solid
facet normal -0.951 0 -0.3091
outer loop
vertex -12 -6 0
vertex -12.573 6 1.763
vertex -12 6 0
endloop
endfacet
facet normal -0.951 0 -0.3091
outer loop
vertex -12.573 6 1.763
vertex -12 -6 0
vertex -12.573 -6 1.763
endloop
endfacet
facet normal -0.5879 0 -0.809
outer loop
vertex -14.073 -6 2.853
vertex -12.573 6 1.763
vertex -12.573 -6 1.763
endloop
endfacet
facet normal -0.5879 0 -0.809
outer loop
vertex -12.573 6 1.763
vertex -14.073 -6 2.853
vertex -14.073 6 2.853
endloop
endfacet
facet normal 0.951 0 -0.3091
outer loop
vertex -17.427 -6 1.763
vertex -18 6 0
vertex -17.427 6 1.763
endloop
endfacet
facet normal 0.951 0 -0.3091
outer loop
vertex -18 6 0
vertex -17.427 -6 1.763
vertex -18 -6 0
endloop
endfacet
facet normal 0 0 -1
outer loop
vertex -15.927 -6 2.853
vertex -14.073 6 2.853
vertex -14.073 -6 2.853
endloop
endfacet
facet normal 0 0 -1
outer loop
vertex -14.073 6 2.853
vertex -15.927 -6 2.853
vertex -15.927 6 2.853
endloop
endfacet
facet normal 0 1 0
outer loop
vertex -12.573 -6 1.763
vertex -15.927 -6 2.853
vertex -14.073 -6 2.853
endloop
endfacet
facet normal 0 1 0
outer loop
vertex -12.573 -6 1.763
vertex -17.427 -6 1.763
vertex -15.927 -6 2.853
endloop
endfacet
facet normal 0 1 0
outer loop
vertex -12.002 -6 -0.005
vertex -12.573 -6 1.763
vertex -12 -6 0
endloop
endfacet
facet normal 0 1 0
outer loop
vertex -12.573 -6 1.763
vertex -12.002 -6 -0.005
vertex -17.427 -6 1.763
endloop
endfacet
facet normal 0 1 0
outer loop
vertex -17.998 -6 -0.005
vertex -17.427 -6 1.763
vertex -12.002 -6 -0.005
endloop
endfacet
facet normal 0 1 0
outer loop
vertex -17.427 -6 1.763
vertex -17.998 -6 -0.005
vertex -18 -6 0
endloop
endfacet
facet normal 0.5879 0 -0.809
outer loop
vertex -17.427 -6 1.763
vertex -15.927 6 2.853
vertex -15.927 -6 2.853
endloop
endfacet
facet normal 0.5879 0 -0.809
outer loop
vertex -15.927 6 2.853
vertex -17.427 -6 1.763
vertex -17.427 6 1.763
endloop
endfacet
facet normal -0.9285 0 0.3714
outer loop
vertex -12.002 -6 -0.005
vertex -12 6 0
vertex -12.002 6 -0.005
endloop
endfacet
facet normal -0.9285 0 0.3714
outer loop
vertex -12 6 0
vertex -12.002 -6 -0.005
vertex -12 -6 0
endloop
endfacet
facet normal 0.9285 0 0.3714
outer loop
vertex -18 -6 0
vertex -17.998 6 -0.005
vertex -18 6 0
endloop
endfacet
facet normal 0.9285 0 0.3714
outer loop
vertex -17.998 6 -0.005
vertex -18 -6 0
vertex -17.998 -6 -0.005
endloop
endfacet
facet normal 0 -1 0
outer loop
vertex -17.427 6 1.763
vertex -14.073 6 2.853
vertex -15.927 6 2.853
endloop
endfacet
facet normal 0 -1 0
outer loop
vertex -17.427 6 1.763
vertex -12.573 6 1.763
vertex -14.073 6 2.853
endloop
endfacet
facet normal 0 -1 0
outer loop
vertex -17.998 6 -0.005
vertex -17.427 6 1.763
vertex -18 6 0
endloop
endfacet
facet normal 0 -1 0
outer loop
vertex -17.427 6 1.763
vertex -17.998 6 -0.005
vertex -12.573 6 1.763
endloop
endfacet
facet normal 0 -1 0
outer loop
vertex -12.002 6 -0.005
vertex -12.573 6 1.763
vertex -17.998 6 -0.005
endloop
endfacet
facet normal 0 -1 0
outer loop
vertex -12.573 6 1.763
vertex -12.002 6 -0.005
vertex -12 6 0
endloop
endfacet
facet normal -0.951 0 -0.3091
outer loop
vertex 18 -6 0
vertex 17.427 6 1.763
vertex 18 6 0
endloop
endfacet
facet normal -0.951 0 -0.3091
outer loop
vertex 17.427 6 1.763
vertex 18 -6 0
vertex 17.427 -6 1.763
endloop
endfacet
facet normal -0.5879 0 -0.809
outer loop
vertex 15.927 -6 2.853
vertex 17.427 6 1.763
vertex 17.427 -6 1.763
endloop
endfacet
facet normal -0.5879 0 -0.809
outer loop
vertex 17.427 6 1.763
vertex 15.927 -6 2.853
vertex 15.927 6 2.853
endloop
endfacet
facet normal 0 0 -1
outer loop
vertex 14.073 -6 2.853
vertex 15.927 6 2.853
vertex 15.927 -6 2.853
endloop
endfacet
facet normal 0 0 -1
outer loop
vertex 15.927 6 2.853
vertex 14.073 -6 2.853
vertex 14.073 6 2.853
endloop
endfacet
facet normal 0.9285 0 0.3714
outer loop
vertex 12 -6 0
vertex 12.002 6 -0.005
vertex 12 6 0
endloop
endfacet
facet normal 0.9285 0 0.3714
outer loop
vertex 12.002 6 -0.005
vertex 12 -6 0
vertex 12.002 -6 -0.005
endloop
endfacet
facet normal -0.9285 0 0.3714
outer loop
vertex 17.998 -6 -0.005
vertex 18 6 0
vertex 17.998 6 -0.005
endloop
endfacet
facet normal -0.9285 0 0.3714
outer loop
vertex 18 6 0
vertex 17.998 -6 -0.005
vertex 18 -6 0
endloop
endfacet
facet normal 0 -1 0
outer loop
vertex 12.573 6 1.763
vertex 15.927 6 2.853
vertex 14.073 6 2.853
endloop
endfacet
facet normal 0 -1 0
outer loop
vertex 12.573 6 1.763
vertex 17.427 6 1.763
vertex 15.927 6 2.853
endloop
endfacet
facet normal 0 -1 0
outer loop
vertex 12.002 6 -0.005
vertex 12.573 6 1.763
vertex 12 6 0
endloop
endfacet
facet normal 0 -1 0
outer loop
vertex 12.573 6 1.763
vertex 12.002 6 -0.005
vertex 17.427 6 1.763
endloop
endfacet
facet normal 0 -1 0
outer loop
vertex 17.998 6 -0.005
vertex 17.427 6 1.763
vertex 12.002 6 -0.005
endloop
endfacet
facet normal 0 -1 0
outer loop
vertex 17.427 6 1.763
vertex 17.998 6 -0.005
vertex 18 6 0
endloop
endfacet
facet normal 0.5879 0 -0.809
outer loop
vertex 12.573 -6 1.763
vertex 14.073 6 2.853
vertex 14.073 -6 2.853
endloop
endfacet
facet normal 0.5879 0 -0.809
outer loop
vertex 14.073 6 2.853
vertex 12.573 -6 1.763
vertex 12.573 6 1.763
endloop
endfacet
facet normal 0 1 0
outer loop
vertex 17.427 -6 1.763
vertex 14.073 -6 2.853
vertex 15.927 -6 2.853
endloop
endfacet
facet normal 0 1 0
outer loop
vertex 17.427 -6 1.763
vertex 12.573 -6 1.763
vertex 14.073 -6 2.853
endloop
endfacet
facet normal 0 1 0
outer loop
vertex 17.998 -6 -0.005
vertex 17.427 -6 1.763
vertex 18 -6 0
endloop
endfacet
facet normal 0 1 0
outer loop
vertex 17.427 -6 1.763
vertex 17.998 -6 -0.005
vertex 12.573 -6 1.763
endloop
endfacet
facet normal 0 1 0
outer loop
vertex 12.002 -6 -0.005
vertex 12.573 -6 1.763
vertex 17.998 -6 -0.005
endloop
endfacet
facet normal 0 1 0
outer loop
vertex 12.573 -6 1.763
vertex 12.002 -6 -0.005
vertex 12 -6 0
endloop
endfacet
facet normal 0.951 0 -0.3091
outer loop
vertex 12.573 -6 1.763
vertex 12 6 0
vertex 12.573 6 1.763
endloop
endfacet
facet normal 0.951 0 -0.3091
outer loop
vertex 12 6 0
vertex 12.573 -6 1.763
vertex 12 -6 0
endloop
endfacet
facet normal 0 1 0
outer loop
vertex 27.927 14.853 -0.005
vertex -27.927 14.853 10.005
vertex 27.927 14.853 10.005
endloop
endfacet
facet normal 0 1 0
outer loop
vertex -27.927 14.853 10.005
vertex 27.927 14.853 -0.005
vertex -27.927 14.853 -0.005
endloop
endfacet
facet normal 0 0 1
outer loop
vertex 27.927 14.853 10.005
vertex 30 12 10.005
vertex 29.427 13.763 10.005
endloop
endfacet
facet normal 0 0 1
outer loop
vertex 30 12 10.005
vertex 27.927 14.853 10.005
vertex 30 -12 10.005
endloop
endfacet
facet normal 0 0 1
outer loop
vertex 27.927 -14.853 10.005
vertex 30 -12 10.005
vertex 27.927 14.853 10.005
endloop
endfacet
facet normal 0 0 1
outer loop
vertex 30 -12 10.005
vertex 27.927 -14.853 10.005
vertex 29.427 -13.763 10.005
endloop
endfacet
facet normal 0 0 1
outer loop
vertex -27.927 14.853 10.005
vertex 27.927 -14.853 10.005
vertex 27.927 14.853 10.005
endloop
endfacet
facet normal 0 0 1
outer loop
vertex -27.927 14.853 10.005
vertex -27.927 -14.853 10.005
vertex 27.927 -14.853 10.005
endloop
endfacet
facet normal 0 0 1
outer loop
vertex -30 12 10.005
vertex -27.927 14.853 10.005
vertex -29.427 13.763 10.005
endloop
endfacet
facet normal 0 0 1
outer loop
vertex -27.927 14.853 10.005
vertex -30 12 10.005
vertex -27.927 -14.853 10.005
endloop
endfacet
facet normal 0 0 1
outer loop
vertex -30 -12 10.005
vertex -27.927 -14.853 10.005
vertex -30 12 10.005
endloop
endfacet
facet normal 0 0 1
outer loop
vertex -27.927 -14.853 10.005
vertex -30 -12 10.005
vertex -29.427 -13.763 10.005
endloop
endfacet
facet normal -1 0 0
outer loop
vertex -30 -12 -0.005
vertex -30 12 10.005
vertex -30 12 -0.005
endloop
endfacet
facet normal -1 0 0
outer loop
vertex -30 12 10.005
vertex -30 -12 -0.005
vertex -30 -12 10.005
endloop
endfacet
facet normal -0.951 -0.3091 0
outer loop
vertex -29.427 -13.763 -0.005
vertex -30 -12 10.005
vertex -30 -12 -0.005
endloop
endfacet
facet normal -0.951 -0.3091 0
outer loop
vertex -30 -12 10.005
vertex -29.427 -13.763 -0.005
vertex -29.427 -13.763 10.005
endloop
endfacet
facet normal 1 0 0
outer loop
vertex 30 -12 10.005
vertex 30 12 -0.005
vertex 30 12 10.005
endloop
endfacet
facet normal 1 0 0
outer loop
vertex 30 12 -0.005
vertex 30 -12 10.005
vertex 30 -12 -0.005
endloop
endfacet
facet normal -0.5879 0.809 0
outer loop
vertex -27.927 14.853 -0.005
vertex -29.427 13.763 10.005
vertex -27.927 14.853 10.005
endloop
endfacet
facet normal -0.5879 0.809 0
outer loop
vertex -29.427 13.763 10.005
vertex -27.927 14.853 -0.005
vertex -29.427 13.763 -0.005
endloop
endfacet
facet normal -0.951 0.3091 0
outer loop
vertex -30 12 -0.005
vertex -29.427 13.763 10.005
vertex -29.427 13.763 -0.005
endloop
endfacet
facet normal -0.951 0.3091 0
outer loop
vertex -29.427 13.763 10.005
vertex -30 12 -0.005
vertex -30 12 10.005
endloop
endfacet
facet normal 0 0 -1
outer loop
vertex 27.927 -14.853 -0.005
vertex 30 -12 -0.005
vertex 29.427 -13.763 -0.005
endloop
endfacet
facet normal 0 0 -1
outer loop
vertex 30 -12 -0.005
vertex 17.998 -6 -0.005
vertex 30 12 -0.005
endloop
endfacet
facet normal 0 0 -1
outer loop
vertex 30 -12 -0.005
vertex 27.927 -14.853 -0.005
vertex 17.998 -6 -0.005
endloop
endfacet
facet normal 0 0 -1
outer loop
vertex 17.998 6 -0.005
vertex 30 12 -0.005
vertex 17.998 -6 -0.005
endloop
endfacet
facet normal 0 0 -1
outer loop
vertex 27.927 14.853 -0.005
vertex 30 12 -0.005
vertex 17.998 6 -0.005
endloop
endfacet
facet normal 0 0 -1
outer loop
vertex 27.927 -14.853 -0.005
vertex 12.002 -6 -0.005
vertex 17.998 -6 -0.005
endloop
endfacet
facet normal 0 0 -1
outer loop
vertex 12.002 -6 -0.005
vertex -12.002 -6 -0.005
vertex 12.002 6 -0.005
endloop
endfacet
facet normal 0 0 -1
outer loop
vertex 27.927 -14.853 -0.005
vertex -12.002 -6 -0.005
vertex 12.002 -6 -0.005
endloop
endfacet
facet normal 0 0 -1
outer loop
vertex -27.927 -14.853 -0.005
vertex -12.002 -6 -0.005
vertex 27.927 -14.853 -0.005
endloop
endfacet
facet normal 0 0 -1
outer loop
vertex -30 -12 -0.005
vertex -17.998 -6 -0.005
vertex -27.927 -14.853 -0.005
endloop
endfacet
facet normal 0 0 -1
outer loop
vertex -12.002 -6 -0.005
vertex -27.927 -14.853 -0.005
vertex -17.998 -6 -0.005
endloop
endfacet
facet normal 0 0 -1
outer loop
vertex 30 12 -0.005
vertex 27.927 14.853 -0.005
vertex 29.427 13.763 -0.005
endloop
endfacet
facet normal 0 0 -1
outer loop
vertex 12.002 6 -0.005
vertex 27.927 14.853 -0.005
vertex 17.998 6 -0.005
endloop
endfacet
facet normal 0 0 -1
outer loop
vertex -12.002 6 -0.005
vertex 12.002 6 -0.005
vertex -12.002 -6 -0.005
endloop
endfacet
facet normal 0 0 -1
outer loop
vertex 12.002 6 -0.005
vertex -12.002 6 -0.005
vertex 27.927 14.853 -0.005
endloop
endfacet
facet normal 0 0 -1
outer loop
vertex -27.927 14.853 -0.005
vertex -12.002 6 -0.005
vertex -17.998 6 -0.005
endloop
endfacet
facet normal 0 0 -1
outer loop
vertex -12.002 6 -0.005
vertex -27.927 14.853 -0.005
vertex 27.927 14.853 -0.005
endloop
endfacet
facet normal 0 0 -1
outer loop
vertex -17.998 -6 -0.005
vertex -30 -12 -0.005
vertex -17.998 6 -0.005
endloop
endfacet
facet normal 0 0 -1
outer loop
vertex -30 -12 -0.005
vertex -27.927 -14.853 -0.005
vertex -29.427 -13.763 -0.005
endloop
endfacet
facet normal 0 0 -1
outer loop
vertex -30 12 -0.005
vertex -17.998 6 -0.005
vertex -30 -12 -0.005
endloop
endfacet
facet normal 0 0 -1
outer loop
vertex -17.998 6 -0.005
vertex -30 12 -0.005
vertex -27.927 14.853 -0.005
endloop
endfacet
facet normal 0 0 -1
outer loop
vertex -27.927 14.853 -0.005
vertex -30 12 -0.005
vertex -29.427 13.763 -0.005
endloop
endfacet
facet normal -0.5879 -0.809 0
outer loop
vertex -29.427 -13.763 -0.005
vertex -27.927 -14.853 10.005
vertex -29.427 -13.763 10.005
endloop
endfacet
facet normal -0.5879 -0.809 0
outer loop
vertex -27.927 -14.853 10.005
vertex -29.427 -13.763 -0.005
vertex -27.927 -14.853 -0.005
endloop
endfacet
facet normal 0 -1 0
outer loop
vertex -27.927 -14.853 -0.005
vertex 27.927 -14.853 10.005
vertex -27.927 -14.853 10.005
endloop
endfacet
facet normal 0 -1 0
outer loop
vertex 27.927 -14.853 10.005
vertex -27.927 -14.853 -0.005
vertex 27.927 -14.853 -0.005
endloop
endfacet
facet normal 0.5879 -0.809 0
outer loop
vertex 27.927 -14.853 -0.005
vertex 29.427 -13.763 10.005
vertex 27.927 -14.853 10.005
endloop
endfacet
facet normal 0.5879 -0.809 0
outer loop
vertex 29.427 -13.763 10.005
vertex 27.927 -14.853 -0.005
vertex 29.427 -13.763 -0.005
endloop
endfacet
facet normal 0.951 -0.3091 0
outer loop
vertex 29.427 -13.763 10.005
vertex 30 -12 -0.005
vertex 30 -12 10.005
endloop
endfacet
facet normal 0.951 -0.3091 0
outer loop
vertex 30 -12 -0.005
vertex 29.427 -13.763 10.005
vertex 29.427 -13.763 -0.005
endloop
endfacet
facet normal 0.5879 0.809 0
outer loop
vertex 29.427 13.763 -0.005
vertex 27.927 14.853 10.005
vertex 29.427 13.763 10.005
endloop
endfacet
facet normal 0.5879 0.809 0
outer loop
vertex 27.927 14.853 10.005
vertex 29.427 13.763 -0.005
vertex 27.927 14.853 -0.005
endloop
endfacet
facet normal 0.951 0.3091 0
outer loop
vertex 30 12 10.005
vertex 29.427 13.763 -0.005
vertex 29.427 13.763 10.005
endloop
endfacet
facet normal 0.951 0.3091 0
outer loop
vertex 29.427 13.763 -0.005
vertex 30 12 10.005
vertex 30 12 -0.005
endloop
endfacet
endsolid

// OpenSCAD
// Parameters
block_length = 60;
block_width = 30;
block_height = 10;
hole_diameter = 6;
hole_offset_x = 15; // distance from center of hole to edge
corner_radius = 3;

// Main block with rounded edges
module rounded_block(length, width, height, radius) {
    minkowski() {
        cube([length - 2*radius, width - 2*radius, height], center=true);
        cylinder(r=radius, h=0.01, center=true);
    }
}

// Create the block
difference() {
    translate([0, 0, block_height/2])
        rounded_block(block_length, block_width, block_height, corner_radius);

    // Create two through holes
    for (x = [-block_length/2 + hole_offset_x, block_length/2 - hole_offset_x]) {
        translate([x, 0, 0])
            rotate([90, 0, 0])
                cylinder(h=block_height + 2, d=hole_diameter, center=true);
    }
}
